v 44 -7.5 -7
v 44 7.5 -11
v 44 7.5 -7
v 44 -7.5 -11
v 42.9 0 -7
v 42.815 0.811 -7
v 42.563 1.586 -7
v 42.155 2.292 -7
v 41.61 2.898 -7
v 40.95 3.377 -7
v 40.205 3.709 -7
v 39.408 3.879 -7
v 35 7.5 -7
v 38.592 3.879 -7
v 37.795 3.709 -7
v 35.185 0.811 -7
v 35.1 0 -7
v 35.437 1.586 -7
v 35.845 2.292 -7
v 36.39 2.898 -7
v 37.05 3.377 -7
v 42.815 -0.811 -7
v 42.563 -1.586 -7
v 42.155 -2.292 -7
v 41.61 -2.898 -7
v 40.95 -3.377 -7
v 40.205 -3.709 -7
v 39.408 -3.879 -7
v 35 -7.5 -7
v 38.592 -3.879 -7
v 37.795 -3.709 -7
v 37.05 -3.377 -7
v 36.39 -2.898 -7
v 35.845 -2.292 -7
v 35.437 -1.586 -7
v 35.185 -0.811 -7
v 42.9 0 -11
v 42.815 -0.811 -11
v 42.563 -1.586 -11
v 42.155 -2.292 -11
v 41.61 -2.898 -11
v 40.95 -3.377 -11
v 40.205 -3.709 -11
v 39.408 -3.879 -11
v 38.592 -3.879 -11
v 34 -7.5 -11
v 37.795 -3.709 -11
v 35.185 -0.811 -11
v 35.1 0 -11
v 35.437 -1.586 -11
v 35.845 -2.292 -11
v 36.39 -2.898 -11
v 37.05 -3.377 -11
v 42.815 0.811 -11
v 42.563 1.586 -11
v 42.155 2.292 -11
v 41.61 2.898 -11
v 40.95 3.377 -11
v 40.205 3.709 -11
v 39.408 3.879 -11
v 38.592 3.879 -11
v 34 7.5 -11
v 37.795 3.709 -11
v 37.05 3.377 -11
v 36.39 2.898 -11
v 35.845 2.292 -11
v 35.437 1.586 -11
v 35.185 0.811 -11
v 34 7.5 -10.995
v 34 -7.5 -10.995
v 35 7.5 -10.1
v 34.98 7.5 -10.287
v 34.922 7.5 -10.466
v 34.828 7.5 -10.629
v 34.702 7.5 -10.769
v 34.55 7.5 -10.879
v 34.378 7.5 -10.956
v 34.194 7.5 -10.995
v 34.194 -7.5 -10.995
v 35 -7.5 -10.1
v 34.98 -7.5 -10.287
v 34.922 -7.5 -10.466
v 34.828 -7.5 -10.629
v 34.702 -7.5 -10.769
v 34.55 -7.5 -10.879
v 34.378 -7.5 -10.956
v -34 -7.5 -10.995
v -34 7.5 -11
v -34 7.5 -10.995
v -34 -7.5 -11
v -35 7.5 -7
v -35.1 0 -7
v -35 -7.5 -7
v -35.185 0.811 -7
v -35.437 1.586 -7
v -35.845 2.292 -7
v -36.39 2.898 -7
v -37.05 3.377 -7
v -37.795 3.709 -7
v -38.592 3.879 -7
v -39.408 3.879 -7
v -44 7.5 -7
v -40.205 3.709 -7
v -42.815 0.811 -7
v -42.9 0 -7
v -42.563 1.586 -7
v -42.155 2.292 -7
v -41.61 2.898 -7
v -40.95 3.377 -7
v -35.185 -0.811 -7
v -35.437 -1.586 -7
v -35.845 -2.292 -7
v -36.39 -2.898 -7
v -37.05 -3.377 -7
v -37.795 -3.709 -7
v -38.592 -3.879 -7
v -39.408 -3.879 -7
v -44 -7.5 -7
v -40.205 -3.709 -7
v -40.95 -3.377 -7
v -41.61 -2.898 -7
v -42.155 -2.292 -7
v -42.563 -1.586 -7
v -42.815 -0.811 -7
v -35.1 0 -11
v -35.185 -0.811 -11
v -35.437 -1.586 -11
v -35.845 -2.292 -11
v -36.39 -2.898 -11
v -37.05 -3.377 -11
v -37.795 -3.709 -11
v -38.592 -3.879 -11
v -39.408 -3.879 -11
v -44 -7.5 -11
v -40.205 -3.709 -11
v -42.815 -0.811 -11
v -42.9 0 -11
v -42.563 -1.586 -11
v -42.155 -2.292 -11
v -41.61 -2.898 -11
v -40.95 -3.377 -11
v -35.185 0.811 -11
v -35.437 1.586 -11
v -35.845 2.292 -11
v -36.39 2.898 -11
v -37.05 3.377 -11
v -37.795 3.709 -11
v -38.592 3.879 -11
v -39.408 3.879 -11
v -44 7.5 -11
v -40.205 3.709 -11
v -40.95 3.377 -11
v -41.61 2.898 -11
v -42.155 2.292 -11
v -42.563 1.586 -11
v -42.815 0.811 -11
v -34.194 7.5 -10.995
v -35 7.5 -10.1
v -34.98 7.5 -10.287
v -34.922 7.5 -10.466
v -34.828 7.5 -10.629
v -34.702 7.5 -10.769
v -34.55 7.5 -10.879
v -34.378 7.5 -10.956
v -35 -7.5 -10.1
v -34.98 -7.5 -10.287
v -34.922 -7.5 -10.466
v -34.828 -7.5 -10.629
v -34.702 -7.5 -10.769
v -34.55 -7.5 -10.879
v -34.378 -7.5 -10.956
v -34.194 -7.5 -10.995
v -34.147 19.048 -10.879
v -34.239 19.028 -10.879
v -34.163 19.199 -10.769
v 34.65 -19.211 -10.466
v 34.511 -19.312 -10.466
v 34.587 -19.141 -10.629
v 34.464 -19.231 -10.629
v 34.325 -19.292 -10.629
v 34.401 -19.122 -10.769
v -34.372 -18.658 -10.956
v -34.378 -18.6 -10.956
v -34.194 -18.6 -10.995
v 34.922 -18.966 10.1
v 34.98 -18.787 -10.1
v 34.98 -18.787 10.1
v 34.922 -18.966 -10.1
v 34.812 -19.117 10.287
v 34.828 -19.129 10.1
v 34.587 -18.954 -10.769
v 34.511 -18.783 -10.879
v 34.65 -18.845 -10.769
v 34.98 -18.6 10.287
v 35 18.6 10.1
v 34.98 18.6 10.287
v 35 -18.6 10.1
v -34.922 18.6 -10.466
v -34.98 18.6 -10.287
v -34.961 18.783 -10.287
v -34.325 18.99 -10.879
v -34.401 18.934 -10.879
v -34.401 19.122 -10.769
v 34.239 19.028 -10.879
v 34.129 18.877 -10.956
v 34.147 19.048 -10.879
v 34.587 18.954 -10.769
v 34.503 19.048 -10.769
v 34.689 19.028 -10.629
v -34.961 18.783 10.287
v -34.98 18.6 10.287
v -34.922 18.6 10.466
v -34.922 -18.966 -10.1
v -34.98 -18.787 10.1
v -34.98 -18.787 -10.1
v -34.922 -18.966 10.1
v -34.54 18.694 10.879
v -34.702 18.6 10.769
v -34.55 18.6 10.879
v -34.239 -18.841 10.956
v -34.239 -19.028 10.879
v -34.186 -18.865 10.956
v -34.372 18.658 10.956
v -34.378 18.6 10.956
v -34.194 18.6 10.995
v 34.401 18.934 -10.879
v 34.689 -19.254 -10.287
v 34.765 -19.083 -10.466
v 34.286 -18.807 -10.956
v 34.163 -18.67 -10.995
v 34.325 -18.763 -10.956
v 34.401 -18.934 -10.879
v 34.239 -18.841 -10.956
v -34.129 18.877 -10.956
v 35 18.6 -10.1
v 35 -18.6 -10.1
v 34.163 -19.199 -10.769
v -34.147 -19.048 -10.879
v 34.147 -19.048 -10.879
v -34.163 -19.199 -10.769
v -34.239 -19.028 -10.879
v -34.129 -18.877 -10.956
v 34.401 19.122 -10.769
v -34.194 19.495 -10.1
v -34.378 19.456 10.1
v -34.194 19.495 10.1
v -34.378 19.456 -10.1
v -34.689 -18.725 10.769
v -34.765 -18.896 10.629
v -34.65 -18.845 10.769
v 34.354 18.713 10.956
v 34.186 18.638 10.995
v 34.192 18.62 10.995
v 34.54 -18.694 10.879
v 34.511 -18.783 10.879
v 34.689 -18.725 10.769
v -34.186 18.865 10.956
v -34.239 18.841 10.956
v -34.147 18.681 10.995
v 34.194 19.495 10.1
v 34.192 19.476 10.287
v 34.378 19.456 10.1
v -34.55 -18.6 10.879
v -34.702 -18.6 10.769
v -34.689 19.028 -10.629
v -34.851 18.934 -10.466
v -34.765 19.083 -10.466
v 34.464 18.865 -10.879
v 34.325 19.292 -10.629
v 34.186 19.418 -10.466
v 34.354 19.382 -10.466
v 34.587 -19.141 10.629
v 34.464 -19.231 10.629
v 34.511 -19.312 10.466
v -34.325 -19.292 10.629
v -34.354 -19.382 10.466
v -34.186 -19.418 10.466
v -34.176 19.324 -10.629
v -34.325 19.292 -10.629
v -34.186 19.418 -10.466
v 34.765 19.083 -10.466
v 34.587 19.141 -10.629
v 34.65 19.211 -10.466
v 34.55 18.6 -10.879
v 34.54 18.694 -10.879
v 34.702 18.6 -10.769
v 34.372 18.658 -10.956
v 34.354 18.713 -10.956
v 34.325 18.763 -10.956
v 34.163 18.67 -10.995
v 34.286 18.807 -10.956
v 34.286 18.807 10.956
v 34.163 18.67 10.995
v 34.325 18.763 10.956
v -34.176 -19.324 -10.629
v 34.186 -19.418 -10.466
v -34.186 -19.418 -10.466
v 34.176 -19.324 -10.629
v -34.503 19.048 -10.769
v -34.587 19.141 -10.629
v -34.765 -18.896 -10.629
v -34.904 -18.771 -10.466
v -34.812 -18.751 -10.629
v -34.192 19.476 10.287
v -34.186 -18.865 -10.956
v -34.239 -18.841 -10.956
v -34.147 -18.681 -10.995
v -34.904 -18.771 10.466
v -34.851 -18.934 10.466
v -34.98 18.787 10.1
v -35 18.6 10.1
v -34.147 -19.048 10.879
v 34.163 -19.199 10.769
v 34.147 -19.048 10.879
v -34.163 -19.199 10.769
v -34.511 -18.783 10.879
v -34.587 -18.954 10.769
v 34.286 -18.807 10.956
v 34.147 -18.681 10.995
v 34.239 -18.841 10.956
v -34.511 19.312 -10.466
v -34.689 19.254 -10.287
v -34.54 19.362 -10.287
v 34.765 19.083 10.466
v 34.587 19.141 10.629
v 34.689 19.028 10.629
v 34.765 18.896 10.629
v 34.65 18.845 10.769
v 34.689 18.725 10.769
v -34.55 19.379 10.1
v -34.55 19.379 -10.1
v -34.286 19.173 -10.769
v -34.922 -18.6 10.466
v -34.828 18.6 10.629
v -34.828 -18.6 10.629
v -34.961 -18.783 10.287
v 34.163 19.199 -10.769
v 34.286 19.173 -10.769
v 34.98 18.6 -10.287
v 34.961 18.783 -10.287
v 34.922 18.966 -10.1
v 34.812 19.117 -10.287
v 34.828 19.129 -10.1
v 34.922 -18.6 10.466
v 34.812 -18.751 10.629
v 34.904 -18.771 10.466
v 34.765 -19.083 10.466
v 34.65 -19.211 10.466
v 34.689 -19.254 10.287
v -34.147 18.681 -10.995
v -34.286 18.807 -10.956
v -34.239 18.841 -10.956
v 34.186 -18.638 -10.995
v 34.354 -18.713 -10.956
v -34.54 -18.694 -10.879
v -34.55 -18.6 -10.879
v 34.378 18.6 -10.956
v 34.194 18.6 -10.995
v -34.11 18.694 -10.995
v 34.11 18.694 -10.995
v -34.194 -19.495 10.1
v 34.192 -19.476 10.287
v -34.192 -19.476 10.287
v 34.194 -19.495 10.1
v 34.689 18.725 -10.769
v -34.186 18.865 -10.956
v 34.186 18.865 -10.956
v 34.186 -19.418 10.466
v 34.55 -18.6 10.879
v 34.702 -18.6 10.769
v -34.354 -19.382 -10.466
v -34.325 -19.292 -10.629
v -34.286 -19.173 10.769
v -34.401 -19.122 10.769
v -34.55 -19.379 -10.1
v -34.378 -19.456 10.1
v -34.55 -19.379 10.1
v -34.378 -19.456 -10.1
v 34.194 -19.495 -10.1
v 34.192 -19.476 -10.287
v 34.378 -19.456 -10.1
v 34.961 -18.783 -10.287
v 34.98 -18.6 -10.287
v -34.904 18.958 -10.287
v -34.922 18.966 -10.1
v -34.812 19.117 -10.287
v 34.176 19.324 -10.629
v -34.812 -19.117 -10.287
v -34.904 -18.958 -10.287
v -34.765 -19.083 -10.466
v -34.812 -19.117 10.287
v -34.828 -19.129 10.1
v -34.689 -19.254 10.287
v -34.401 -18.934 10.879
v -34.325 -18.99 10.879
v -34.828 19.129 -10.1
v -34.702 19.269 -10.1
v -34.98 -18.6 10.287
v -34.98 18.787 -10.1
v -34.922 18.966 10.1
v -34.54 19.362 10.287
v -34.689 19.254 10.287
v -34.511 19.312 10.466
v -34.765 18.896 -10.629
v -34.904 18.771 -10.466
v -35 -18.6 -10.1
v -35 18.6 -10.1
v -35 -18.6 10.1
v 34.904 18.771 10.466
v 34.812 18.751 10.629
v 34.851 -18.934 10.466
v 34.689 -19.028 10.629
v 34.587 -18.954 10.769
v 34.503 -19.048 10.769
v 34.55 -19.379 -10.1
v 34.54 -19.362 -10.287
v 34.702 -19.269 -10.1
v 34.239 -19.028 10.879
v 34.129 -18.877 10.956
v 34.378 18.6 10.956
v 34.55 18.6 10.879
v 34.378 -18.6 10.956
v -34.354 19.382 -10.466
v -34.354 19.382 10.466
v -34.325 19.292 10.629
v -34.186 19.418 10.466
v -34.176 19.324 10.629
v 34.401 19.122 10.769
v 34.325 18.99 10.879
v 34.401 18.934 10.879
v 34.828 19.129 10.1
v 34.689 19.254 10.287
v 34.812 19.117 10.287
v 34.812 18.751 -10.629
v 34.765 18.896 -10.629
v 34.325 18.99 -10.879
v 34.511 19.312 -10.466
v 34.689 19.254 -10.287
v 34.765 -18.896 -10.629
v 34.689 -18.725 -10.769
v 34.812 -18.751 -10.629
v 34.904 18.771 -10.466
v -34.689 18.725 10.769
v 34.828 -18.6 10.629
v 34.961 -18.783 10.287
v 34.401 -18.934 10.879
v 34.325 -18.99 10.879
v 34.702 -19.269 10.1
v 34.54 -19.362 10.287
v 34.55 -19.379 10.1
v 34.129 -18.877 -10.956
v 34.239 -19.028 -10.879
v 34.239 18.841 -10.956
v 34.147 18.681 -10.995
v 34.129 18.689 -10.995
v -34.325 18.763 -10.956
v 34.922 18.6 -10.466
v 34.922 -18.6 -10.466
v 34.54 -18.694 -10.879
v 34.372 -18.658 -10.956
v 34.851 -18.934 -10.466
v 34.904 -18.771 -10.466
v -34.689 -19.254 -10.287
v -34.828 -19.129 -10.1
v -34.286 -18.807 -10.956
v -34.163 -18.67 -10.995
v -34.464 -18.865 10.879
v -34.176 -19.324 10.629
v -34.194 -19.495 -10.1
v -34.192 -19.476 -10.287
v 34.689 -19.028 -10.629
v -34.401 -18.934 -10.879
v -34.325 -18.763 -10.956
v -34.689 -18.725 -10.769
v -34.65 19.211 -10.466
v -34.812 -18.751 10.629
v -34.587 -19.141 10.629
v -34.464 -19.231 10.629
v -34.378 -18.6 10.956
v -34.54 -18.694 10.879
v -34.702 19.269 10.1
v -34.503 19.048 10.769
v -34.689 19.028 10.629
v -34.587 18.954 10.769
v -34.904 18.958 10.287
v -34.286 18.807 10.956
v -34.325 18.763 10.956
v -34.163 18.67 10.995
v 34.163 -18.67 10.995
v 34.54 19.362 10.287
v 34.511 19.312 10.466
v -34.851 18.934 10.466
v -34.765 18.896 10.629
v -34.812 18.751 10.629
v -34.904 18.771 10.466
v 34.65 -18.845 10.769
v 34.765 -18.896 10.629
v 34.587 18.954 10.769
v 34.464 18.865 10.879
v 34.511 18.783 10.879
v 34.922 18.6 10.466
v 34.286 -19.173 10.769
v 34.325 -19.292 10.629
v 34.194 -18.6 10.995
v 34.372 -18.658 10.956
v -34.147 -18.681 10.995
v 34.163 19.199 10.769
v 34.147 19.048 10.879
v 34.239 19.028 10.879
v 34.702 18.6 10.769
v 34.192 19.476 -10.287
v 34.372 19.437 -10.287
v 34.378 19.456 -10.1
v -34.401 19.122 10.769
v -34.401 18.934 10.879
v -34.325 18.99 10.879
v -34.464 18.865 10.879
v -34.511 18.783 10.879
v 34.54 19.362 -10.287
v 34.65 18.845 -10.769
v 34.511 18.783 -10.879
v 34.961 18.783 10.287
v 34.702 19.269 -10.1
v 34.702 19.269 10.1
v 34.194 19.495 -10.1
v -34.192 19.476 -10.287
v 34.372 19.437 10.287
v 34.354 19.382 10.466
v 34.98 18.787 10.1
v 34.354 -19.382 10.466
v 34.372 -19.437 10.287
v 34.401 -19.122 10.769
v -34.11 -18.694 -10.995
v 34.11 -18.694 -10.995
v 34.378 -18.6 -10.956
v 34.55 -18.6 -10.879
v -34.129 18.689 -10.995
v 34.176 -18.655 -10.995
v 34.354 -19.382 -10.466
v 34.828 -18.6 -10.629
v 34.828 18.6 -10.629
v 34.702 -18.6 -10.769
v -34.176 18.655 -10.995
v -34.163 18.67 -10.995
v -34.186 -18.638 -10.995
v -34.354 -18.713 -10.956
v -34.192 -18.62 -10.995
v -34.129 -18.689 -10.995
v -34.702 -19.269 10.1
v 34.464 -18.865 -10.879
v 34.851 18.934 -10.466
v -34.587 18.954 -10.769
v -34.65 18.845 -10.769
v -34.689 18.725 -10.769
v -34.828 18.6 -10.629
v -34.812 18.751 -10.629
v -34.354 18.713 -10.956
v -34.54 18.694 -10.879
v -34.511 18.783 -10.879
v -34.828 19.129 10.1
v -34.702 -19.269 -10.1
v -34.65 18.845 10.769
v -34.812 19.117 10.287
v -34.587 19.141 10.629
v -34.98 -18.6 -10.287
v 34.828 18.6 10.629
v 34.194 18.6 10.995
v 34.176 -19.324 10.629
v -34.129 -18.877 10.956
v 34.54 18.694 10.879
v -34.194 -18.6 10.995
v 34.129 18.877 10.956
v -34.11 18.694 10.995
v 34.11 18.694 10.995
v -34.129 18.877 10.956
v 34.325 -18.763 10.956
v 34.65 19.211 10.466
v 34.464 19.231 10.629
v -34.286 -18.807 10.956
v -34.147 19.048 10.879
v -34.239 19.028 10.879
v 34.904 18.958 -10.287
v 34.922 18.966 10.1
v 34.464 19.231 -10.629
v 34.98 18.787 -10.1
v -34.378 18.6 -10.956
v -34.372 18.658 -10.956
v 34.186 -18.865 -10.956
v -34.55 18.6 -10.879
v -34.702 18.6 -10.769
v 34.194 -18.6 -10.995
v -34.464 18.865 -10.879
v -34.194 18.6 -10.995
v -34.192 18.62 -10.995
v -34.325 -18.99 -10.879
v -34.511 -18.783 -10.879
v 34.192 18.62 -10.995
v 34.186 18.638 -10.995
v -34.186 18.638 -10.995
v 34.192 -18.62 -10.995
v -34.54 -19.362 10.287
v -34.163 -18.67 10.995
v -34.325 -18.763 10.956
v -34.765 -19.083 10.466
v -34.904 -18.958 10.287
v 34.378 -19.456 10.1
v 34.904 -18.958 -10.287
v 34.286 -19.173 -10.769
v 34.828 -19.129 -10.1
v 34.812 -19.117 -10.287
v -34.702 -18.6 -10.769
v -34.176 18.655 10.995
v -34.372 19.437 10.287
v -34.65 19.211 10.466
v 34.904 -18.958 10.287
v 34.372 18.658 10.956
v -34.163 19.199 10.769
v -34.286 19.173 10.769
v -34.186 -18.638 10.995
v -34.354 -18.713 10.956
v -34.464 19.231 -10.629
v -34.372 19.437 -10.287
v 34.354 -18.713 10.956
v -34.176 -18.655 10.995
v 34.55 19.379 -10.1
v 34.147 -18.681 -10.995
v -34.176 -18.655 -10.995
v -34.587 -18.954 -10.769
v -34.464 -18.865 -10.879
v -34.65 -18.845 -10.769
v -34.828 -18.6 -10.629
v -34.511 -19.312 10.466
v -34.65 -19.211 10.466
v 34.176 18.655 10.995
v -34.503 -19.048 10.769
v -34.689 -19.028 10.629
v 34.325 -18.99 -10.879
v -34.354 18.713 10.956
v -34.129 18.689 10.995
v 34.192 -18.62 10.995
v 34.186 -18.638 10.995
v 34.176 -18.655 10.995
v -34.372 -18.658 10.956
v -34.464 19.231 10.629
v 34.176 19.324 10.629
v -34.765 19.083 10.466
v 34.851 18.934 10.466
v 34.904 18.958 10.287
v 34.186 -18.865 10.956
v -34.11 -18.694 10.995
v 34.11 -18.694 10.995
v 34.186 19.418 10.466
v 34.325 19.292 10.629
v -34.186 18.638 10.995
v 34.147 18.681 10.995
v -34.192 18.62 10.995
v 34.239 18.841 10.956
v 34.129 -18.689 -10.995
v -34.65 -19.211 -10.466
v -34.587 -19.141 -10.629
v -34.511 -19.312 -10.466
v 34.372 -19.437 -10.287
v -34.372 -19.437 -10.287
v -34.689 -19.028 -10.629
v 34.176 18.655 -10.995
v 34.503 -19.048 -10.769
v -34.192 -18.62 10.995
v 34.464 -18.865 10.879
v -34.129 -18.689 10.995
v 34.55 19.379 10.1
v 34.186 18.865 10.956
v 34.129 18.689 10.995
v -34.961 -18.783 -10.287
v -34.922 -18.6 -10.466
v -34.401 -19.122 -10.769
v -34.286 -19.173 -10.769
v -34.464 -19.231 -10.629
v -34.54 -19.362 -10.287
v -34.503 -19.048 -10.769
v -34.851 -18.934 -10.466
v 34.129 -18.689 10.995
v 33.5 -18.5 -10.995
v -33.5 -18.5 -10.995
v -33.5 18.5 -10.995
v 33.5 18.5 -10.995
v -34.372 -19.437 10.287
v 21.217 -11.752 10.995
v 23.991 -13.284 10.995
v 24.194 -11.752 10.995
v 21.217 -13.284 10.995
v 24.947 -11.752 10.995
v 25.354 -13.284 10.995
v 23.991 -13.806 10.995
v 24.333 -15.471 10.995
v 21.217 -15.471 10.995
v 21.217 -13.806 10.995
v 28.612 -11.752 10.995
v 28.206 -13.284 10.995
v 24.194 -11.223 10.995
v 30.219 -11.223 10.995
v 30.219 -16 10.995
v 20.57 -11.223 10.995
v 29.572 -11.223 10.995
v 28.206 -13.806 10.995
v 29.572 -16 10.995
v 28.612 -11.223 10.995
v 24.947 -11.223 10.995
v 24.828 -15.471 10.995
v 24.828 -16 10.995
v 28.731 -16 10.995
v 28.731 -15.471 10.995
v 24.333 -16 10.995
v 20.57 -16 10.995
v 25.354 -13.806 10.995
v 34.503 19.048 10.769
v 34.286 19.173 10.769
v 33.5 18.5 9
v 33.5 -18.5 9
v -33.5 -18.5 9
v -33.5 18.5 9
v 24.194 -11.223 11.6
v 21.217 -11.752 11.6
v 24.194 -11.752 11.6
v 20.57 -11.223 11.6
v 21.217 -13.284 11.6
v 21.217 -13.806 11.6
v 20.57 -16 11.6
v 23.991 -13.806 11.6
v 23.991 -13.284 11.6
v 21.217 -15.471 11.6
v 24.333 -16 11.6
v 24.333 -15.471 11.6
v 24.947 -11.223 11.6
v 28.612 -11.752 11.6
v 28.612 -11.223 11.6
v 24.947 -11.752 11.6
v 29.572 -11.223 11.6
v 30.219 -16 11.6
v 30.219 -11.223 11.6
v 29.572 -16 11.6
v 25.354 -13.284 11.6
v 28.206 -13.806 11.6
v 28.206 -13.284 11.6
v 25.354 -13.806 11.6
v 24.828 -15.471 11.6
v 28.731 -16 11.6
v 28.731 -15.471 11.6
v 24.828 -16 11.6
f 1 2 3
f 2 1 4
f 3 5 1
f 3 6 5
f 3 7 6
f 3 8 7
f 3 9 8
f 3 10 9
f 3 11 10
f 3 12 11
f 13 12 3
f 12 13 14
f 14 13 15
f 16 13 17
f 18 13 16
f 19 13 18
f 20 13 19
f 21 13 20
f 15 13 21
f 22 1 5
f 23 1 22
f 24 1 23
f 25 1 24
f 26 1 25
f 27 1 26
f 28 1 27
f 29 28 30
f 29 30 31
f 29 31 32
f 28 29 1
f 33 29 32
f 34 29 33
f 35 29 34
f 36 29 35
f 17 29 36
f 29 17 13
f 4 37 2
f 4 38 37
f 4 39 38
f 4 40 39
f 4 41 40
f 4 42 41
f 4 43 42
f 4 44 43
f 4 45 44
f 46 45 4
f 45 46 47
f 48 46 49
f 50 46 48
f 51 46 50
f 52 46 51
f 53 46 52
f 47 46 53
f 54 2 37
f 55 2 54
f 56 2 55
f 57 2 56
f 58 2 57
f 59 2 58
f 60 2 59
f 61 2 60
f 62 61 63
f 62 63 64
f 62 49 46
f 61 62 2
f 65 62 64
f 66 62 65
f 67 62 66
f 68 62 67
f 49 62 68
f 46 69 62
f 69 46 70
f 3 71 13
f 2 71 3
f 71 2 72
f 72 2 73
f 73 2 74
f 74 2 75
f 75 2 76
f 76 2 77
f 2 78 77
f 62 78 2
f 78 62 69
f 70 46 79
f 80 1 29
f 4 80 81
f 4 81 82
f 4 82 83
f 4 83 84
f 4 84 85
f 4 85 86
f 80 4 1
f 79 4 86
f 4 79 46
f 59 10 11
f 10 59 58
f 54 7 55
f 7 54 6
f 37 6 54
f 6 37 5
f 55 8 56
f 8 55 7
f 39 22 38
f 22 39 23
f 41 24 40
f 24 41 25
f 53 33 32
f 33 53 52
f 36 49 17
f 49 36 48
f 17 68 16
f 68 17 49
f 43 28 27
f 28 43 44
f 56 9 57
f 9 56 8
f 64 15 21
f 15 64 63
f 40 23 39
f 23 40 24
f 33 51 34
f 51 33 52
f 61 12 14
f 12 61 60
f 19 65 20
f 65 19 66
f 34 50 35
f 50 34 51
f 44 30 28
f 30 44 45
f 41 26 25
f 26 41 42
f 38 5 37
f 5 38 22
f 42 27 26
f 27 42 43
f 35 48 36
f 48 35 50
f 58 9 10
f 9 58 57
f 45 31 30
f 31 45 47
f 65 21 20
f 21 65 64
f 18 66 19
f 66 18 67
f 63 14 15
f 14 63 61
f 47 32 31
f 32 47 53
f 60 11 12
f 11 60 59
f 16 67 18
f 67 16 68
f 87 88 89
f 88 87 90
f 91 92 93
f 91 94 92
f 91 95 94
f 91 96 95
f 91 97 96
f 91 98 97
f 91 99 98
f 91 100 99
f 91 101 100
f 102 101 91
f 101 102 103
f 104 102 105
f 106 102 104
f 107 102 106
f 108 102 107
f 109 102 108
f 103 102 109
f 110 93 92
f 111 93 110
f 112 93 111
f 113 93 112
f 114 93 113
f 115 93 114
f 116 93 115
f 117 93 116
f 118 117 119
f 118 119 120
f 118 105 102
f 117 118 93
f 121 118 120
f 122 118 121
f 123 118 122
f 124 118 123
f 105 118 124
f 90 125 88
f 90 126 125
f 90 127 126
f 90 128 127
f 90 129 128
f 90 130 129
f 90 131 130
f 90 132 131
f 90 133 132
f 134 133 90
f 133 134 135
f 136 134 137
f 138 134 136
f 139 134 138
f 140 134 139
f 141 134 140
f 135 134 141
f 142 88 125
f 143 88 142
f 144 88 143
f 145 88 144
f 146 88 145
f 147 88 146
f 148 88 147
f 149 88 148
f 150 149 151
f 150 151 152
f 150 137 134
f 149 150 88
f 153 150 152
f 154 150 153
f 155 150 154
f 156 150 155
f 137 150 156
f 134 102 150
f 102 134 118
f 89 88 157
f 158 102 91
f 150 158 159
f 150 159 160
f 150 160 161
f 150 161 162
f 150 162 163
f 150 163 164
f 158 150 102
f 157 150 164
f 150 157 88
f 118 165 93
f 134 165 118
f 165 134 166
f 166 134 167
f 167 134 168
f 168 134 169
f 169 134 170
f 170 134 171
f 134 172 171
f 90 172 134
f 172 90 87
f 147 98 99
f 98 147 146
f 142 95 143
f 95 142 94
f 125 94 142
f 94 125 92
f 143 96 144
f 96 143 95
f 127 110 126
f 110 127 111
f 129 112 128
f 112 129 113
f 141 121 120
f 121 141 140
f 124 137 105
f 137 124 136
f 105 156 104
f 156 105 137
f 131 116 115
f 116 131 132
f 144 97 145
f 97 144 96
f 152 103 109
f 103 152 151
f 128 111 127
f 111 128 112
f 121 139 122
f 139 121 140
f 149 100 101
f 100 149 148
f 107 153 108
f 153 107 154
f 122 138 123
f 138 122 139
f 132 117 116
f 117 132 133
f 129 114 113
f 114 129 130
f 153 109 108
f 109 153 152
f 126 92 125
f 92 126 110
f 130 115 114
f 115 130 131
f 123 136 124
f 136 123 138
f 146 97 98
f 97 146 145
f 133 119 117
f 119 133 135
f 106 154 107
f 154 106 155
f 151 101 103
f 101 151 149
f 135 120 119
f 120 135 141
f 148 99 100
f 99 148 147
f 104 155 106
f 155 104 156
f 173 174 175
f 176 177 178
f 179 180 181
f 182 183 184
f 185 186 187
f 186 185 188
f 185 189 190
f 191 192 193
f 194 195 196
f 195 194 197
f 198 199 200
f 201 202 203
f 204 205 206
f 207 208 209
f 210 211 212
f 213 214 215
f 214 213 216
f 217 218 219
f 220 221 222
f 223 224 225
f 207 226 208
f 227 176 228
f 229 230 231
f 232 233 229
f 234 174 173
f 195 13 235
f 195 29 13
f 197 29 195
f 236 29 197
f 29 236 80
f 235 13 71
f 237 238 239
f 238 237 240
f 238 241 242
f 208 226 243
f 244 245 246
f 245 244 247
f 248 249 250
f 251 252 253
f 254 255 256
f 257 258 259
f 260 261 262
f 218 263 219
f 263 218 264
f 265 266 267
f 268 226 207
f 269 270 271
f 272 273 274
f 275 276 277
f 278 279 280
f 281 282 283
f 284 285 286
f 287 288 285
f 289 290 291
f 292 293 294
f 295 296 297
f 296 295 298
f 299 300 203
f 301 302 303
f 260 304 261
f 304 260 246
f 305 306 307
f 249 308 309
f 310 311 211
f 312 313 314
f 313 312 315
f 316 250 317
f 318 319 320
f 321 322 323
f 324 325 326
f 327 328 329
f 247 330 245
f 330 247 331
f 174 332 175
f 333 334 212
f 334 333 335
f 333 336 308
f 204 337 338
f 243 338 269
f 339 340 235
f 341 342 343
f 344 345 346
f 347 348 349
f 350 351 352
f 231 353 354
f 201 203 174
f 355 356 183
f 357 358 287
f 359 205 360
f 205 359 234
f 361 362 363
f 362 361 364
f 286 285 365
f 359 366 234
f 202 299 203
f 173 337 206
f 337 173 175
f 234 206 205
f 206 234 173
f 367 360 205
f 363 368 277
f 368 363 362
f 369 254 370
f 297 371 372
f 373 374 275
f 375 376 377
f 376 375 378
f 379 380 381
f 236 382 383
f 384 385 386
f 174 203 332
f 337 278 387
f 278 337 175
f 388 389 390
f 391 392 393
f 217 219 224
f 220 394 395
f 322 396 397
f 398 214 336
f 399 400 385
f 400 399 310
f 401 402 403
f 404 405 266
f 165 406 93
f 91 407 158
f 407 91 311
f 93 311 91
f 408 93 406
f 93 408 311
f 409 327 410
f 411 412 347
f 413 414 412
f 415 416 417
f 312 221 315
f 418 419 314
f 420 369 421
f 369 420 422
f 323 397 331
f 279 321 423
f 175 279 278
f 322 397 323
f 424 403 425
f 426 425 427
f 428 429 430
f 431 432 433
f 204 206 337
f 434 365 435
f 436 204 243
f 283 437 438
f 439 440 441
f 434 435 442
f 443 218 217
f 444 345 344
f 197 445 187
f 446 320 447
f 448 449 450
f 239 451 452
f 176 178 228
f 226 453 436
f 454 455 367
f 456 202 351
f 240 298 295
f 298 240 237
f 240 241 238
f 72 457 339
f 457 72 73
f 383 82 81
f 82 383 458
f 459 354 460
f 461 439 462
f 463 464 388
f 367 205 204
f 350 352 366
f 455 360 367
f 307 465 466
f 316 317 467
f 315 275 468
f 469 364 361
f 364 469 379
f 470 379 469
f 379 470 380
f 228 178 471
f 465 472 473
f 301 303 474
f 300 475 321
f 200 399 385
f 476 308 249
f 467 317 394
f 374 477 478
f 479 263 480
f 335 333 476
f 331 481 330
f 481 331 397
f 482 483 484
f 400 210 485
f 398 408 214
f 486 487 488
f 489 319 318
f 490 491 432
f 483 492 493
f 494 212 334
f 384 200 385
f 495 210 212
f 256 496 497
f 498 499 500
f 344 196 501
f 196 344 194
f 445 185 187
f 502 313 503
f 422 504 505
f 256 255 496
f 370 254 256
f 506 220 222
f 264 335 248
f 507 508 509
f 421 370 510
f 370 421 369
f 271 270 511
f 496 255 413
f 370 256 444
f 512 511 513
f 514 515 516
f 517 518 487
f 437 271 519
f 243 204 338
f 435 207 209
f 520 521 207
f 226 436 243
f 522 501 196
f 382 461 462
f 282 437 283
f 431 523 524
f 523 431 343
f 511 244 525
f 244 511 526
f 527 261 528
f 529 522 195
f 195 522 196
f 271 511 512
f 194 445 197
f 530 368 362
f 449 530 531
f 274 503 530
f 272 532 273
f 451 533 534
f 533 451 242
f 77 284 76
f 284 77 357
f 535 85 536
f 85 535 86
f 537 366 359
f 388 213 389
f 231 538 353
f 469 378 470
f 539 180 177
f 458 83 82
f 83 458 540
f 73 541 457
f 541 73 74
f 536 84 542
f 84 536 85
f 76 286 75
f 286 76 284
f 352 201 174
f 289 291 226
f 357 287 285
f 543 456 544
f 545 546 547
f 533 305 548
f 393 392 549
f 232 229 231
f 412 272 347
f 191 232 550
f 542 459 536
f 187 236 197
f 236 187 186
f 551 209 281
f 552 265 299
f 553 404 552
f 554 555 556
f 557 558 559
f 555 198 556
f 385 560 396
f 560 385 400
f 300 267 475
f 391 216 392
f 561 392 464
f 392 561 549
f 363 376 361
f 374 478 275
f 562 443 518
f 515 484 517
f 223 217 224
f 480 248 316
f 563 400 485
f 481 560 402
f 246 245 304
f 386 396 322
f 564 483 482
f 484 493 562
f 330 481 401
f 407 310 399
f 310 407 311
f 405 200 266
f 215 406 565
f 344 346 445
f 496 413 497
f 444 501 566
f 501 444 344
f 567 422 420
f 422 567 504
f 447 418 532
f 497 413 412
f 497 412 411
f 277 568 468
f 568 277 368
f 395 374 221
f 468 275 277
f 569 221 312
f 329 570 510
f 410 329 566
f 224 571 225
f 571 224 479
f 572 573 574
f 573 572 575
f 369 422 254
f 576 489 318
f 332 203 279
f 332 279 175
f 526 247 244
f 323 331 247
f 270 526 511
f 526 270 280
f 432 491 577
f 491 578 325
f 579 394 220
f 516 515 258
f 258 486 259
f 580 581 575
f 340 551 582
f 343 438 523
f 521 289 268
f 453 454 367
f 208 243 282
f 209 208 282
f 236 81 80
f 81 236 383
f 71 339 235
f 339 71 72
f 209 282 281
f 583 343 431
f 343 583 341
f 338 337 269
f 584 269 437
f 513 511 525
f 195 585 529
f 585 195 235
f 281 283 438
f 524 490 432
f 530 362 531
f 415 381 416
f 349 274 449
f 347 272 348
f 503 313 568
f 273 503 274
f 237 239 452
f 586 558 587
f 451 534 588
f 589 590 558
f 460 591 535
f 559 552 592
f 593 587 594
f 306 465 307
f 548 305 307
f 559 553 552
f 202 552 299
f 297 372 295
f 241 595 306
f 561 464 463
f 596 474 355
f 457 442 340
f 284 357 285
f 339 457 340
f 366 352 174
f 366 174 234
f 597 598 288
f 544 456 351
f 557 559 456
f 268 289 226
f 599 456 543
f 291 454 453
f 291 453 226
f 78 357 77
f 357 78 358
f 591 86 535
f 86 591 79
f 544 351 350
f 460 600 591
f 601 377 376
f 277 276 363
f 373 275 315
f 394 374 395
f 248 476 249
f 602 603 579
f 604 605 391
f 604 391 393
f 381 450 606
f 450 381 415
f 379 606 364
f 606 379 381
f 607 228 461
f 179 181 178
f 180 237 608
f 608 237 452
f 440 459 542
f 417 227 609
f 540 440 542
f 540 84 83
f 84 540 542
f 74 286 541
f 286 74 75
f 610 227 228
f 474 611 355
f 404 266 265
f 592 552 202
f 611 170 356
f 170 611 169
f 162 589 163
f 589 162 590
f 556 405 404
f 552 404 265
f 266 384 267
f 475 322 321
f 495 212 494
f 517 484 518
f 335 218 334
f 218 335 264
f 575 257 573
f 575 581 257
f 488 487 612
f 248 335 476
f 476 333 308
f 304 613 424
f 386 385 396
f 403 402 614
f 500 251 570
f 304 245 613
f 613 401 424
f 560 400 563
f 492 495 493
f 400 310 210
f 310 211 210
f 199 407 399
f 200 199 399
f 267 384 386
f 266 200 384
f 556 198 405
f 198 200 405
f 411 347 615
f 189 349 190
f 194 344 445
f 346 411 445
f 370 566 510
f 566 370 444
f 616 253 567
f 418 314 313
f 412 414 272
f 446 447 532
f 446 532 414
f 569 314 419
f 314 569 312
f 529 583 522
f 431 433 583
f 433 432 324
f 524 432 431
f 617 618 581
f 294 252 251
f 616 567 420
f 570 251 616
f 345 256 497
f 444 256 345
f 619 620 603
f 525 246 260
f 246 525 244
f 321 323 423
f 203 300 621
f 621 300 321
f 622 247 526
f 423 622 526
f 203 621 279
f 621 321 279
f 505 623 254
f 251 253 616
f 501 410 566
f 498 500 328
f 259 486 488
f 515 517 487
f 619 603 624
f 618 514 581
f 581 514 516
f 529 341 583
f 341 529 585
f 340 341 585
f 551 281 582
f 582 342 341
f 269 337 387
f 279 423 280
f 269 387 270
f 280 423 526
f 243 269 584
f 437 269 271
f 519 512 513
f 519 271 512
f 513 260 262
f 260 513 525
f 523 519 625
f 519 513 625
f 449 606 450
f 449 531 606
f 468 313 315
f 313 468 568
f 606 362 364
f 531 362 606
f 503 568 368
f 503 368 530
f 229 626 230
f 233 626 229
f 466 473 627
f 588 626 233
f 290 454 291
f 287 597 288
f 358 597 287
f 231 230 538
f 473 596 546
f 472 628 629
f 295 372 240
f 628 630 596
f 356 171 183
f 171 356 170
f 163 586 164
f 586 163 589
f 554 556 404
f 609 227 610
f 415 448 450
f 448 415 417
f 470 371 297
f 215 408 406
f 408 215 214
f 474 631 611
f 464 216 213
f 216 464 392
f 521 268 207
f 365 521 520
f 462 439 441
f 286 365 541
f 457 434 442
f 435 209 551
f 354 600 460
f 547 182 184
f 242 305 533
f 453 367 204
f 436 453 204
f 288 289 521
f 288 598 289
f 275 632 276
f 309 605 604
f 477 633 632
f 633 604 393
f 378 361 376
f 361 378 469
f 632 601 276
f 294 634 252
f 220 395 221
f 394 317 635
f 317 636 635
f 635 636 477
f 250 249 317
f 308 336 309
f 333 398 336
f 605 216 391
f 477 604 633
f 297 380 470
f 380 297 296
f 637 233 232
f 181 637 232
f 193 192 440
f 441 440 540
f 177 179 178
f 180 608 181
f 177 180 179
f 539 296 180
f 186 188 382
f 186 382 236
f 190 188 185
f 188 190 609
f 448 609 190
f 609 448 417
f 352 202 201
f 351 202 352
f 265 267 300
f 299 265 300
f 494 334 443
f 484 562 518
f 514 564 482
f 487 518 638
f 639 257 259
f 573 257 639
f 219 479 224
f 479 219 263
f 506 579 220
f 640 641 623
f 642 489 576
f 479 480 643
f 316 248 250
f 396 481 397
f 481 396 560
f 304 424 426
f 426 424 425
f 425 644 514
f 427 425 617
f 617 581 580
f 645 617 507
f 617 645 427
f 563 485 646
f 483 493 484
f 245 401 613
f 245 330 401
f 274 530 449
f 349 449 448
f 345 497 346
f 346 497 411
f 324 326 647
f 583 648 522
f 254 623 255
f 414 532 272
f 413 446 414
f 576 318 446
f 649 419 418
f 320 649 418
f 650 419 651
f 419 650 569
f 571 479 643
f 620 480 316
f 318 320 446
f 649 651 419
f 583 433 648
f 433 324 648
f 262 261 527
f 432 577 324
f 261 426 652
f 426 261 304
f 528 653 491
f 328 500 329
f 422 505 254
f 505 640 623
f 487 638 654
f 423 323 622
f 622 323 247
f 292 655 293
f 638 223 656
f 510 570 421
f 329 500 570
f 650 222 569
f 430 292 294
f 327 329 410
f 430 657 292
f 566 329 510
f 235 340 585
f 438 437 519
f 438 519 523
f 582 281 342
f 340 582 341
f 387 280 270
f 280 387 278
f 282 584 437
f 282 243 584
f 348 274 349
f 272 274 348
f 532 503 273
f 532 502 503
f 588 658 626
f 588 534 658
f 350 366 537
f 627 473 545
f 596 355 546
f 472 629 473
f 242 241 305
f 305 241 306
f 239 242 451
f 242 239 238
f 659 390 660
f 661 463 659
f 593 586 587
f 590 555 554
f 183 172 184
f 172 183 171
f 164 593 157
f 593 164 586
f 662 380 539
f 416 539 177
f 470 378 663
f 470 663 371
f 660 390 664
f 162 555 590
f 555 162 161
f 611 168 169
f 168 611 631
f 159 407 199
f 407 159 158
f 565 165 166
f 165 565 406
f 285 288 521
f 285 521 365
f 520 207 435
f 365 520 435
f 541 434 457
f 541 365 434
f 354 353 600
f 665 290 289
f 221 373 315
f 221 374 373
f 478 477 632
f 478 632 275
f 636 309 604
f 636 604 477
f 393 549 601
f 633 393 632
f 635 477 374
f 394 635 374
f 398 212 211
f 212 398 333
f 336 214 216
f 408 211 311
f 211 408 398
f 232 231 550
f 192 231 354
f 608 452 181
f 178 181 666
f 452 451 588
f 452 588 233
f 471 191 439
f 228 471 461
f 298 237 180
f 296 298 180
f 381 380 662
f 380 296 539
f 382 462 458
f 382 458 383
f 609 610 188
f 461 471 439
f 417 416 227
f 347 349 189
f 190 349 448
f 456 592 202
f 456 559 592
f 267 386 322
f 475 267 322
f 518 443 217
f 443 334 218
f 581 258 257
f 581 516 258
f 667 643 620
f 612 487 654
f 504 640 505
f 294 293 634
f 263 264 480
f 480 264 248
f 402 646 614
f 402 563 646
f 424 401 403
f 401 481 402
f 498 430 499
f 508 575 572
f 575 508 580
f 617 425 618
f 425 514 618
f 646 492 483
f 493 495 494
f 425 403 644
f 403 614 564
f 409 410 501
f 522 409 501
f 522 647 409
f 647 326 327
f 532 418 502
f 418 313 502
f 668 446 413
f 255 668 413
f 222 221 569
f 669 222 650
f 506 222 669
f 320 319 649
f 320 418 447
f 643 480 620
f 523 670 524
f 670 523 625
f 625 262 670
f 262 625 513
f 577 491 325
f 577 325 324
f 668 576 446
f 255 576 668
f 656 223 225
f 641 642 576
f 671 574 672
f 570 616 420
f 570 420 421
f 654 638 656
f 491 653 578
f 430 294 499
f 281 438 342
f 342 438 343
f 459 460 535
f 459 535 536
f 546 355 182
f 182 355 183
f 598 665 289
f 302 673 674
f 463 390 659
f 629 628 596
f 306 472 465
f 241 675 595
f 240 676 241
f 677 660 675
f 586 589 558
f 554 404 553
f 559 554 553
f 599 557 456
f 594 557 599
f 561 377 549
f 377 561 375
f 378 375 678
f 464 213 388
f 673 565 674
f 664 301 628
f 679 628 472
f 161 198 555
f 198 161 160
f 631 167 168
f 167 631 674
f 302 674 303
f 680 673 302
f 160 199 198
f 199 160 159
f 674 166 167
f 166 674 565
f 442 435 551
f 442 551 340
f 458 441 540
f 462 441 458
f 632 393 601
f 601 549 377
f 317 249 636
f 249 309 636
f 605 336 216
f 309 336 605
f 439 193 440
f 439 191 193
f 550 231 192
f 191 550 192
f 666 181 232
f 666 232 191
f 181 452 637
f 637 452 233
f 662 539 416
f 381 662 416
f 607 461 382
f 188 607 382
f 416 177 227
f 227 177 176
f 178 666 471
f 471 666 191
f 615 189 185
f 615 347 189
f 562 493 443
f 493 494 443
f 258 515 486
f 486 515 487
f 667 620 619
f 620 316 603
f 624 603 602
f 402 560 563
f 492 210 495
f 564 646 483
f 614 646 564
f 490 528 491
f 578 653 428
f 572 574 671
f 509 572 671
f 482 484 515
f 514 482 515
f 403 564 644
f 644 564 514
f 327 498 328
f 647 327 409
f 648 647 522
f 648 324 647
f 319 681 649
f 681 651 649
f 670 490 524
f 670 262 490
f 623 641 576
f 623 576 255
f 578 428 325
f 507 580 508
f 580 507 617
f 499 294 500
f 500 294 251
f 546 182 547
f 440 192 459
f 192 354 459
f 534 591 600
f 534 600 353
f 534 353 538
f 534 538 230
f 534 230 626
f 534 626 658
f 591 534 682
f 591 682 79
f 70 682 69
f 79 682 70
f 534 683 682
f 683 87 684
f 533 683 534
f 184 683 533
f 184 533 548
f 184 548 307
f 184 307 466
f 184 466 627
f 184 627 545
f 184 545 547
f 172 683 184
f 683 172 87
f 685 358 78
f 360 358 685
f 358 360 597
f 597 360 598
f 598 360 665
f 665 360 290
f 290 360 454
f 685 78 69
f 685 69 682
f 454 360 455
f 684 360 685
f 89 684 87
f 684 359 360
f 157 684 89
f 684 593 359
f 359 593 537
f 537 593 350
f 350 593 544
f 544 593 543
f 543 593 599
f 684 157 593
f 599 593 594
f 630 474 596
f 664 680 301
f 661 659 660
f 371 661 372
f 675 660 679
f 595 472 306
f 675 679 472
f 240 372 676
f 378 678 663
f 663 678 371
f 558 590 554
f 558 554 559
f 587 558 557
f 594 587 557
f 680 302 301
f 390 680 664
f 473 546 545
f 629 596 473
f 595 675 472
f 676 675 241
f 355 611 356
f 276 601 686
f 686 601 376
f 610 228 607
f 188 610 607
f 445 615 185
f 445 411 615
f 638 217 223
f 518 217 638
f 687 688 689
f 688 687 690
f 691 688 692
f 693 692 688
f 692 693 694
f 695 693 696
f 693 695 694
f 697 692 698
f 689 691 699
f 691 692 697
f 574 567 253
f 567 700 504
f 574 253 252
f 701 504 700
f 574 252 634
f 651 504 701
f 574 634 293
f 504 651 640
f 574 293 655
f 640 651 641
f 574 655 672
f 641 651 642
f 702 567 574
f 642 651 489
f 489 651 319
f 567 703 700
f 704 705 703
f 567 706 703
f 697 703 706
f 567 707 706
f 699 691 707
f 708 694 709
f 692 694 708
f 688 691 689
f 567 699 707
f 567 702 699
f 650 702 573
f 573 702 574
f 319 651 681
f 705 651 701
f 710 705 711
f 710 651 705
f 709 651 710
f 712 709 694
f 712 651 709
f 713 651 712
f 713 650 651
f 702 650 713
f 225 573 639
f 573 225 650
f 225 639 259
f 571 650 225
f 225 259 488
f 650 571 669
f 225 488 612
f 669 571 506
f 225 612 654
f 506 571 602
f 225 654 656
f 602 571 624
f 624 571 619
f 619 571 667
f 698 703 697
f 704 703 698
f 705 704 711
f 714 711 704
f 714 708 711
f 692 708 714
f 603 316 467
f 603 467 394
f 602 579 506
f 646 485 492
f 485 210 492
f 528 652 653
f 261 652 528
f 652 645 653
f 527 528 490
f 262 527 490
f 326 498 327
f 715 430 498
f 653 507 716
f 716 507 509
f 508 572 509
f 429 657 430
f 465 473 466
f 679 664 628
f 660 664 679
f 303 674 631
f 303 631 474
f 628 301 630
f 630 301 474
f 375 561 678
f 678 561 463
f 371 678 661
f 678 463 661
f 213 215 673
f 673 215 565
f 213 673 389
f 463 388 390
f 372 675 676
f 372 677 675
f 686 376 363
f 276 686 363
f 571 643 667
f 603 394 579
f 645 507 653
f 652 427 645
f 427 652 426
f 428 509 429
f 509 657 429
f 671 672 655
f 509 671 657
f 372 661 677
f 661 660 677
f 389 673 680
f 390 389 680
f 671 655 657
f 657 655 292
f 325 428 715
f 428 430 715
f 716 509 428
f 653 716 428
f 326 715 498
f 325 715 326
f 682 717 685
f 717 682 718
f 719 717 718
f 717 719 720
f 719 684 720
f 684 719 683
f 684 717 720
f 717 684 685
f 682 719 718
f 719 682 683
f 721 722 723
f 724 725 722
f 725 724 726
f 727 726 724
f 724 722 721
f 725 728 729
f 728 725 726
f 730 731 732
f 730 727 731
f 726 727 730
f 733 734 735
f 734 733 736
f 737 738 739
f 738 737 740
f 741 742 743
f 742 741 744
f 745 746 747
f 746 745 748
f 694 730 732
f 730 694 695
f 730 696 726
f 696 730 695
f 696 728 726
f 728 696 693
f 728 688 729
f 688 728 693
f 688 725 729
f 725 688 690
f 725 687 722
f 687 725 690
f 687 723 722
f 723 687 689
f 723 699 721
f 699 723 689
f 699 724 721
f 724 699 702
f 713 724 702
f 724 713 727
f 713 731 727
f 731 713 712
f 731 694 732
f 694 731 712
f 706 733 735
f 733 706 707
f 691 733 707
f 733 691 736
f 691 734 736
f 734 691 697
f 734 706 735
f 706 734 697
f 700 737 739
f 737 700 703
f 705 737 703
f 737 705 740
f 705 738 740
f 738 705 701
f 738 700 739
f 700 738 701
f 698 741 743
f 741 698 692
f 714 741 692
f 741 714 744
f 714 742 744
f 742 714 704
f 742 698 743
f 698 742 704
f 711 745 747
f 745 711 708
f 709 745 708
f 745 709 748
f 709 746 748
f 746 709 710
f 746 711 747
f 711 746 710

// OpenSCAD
// Higher definition curves
$fs = 0.01;

module roundedcube(size = [1, 1, 1], center = false, radius = 0.5, apply_to = "all") {
	// If single value, convert to [x, y, z] vector
	size = (size[0] == undef) ? [size, size, size] : size;

	translate_min = radius;
	translate_xmax = size[0] - radius;
	translate_ymax = size[1] - radius;
	translate_zmax = size[2] - radius;

	diameter = radius * 2;

	module build_point(type = "sphere", rotate = [0, 0, 0]) {
		if (type == "sphere") {
			sphere(r = radius);
		} else if (type == "cylinder") {
			rotate(a = rotate)
			cylinder(h = diameter, r = radius, center = true);
		}
	}

	obj_translate = (center == false) ?
		[0, 0, 0] : [
			-(size[0] / 2),
			-(size[1] / 2),
			-(size[2] / 2)
		];

	translate(v = obj_translate) {
		hull() {
			for (translate_x = [translate_min, translate_xmax]) {
				x_at = (translate_x == translate_min) ? "min" : "max";
				for (translate_y = [translate_min, translate_ymax]) {
					y_at = (translate_y == translate_min) ? "min" : "max";
					for (translate_z = [translate_min, translate_zmax]) {
						z_at = (translate_z == translate_min) ? "min" : "max";

						translate(v = [translate_x, translate_y, translate_z])
						if (
							(apply_to == "all") ||
							(apply_to == "xmin" && x_at == "min") || (apply_to == "xmax" && x_at == "max") ||
							(apply_to == "ymin" && y_at == "min") || (apply_to == "ymax" && y_at == "max") ||
							(apply_to == "zmin" && z_at == "min") || (apply_to == "zmax" && z_at == "max")
						) {
							build_point("sphere");
						} else {
							rotate = 
								(apply_to == "xmin" || apply_to == "xmax" || apply_to == "x") ? [0, 90, 0] : (
								(apply_to == "ymin" || apply_to == "ymax" || apply_to == "y") ? [90, 90, 0] :
								[0, 0, 0]
							);
							build_point("cylinder", rotate);
						}
					}
				}
			}
		}
	}
}

color("cyan");
union(){

    union()
    {
        difference() {
            //cube([70,39,22], center=true );
            roundedcube([70,39,22], true, 0.9,"all");
            translate([0,0,-6]){
                cube([67,37,30], center=true );
            }
        }
        
        difference(){
            translate([39,0,-9]){
                cube([10,15,4], center=true );
            }
            translate([39,0,-9]){
                cylinder(6,3.9,3.9,center=true);
            }

        }

        difference(){
            translate([-39,0,-9]){
                cube([10,15,4], center=true );
            }
            translate([-39,0,-9]){
                cylinder(6,3.9,3.9,center=true);
            }

        }
       
    }
    
    translate([20,-16,9.6]){
            
            linear_extrude(2)
             color("red")
            text("ΕΞΙ",size=5);
            
    }

}
